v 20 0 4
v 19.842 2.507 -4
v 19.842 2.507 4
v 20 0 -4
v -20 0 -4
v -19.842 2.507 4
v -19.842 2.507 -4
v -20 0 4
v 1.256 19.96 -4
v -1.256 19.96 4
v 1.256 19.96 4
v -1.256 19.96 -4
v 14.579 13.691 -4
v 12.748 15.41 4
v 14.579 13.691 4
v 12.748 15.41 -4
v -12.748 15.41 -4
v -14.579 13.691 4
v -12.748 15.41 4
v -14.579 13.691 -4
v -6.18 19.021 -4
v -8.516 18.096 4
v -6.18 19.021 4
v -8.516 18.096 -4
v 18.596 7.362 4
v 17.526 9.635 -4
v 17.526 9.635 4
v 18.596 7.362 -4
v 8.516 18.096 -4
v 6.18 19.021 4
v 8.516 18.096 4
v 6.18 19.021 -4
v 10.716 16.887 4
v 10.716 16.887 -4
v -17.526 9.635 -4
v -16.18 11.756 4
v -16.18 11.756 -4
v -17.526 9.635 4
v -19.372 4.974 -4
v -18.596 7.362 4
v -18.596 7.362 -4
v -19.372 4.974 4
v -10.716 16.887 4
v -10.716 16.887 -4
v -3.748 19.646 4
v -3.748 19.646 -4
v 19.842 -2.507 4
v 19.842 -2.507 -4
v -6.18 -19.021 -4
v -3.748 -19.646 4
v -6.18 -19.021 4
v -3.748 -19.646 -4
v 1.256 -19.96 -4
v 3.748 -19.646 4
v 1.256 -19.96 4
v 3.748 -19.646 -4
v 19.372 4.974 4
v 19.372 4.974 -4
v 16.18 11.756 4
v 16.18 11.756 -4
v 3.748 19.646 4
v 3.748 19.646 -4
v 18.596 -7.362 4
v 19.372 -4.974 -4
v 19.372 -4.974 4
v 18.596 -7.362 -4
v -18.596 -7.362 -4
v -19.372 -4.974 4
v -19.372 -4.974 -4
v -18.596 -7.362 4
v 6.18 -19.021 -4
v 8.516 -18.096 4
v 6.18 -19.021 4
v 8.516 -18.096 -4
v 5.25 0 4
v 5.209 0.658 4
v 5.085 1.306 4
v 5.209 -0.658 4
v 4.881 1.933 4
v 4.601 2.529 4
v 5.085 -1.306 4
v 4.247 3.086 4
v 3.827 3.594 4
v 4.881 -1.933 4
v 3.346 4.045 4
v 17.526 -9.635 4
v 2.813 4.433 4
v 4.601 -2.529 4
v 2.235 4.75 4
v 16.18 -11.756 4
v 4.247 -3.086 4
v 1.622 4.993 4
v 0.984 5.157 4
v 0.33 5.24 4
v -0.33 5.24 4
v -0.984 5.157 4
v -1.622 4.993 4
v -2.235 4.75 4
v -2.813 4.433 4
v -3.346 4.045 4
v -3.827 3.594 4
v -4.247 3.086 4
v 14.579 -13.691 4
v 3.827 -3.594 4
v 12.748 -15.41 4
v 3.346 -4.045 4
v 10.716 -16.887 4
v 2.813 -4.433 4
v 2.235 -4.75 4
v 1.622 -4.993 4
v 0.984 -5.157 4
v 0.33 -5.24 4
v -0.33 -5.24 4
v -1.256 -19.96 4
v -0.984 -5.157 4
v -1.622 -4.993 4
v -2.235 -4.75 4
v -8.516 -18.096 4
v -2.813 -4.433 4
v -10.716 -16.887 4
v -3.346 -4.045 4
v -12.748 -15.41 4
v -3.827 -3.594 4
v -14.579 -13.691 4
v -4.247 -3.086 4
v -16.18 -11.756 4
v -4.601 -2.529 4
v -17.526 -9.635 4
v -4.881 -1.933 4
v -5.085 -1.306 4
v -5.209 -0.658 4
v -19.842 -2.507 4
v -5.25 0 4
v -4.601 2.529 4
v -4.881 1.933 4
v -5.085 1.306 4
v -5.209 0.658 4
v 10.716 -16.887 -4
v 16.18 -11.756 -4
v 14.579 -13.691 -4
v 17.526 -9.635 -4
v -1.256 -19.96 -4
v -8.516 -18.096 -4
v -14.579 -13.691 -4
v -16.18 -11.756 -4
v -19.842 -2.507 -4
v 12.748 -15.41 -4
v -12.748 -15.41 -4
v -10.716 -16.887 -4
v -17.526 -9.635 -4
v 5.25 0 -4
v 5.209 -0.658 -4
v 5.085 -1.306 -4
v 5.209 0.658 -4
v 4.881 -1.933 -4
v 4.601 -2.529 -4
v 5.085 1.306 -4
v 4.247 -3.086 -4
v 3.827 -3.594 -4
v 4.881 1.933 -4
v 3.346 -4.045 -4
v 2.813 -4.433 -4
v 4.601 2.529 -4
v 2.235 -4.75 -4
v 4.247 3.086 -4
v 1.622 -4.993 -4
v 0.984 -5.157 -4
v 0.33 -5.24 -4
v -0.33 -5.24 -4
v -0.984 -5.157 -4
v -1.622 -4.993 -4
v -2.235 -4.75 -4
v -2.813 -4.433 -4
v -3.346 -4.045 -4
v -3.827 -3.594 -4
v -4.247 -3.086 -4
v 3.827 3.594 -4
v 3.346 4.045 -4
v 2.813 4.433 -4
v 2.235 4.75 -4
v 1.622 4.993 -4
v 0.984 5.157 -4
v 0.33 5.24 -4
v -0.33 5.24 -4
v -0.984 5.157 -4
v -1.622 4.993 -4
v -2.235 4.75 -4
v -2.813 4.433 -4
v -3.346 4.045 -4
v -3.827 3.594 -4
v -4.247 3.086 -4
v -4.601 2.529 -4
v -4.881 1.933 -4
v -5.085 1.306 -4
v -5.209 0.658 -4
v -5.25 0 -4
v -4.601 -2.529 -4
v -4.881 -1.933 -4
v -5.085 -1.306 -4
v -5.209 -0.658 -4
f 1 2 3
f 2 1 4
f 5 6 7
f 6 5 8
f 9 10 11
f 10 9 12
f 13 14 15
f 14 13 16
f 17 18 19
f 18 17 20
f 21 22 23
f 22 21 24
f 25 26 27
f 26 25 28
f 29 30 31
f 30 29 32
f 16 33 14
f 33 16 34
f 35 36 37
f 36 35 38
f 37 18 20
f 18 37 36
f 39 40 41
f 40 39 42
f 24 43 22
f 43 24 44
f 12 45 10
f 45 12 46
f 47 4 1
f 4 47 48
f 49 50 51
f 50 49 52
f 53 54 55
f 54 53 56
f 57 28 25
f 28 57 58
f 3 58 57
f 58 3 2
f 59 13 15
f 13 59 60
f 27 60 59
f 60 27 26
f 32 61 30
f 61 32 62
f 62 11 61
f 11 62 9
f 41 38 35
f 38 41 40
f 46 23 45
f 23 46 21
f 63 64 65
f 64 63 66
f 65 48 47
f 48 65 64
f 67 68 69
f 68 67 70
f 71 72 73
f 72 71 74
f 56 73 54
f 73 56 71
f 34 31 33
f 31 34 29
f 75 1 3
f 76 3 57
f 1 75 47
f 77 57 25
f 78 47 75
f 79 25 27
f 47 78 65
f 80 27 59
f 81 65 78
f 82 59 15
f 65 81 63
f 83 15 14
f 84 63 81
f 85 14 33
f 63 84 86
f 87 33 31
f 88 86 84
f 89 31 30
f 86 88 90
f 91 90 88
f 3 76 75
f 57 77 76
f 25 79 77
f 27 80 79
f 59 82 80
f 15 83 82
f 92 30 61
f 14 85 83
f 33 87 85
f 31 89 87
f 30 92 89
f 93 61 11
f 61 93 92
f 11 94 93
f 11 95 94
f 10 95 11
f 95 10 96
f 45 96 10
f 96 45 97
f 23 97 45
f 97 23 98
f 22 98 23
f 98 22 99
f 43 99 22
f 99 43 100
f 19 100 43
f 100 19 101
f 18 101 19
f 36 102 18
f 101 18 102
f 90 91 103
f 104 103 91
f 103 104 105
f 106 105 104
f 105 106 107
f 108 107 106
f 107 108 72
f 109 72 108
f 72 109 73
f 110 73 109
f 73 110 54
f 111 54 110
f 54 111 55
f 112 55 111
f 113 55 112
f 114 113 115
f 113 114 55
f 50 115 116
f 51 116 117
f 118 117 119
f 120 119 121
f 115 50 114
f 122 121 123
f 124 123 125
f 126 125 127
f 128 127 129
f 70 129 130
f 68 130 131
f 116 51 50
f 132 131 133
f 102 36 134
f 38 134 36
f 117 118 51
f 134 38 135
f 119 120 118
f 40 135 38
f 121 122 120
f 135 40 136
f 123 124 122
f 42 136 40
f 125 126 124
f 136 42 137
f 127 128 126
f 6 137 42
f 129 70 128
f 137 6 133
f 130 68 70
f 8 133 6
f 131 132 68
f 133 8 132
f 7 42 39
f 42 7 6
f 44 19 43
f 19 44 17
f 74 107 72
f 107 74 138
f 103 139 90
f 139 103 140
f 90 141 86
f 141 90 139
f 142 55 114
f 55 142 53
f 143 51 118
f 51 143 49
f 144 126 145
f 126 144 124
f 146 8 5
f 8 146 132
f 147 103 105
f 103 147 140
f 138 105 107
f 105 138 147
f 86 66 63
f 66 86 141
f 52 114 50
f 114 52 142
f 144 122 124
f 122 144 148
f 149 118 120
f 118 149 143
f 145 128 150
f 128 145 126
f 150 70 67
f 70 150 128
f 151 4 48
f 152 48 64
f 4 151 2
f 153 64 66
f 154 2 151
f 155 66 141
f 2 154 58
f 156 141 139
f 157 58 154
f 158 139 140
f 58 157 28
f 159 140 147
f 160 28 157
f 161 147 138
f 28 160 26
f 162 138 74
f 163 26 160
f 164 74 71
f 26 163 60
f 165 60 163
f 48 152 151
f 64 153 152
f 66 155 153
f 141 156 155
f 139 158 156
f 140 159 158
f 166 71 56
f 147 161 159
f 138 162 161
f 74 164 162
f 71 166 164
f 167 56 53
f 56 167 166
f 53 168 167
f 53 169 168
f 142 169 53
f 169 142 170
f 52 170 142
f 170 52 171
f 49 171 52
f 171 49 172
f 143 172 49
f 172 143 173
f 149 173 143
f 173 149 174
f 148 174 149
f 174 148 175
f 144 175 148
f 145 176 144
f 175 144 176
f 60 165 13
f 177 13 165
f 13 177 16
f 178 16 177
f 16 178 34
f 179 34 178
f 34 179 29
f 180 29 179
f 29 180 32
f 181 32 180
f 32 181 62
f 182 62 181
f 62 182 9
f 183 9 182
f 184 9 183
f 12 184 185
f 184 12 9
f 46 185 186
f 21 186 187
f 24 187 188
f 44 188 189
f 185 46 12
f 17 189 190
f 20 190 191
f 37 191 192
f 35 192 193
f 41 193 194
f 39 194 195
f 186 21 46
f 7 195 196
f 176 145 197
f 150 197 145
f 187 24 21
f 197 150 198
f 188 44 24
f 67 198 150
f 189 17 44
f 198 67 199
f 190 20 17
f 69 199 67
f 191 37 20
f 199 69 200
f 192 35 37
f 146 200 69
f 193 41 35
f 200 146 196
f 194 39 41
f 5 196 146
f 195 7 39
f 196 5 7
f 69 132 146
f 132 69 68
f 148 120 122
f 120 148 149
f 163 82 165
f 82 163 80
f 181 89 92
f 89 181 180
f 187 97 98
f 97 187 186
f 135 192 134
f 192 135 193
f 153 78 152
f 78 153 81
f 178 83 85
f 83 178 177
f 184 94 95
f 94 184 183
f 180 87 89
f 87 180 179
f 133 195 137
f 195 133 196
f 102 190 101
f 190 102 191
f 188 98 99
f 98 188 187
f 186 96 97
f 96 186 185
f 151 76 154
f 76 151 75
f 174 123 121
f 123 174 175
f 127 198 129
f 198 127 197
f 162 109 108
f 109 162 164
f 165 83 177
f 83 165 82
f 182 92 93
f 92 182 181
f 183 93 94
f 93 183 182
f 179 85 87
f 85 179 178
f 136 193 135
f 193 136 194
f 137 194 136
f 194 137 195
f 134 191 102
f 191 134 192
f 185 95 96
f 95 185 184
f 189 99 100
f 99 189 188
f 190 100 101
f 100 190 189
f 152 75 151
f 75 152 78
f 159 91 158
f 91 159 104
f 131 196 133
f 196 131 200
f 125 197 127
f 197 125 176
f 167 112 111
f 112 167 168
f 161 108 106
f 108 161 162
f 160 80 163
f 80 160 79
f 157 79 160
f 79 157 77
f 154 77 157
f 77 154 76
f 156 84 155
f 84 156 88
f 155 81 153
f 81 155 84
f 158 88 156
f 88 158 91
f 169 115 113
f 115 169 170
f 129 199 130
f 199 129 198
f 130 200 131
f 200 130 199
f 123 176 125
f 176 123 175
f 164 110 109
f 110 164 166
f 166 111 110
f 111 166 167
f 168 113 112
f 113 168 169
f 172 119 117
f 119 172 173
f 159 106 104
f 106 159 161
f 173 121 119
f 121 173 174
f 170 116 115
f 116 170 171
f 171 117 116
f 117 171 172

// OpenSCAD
$fn = 50;


difference() {
	union() {
		translate(v = [0, 0, -4.0000000000]) {
			cylinder(h = 8, r = 20.0000000000);
		}
	}
	union() {
		translate(v = [0, 0, -100.0000000000]) {
			cylinder(h = 200, r = 5.2500000000);
		}
	}
}
